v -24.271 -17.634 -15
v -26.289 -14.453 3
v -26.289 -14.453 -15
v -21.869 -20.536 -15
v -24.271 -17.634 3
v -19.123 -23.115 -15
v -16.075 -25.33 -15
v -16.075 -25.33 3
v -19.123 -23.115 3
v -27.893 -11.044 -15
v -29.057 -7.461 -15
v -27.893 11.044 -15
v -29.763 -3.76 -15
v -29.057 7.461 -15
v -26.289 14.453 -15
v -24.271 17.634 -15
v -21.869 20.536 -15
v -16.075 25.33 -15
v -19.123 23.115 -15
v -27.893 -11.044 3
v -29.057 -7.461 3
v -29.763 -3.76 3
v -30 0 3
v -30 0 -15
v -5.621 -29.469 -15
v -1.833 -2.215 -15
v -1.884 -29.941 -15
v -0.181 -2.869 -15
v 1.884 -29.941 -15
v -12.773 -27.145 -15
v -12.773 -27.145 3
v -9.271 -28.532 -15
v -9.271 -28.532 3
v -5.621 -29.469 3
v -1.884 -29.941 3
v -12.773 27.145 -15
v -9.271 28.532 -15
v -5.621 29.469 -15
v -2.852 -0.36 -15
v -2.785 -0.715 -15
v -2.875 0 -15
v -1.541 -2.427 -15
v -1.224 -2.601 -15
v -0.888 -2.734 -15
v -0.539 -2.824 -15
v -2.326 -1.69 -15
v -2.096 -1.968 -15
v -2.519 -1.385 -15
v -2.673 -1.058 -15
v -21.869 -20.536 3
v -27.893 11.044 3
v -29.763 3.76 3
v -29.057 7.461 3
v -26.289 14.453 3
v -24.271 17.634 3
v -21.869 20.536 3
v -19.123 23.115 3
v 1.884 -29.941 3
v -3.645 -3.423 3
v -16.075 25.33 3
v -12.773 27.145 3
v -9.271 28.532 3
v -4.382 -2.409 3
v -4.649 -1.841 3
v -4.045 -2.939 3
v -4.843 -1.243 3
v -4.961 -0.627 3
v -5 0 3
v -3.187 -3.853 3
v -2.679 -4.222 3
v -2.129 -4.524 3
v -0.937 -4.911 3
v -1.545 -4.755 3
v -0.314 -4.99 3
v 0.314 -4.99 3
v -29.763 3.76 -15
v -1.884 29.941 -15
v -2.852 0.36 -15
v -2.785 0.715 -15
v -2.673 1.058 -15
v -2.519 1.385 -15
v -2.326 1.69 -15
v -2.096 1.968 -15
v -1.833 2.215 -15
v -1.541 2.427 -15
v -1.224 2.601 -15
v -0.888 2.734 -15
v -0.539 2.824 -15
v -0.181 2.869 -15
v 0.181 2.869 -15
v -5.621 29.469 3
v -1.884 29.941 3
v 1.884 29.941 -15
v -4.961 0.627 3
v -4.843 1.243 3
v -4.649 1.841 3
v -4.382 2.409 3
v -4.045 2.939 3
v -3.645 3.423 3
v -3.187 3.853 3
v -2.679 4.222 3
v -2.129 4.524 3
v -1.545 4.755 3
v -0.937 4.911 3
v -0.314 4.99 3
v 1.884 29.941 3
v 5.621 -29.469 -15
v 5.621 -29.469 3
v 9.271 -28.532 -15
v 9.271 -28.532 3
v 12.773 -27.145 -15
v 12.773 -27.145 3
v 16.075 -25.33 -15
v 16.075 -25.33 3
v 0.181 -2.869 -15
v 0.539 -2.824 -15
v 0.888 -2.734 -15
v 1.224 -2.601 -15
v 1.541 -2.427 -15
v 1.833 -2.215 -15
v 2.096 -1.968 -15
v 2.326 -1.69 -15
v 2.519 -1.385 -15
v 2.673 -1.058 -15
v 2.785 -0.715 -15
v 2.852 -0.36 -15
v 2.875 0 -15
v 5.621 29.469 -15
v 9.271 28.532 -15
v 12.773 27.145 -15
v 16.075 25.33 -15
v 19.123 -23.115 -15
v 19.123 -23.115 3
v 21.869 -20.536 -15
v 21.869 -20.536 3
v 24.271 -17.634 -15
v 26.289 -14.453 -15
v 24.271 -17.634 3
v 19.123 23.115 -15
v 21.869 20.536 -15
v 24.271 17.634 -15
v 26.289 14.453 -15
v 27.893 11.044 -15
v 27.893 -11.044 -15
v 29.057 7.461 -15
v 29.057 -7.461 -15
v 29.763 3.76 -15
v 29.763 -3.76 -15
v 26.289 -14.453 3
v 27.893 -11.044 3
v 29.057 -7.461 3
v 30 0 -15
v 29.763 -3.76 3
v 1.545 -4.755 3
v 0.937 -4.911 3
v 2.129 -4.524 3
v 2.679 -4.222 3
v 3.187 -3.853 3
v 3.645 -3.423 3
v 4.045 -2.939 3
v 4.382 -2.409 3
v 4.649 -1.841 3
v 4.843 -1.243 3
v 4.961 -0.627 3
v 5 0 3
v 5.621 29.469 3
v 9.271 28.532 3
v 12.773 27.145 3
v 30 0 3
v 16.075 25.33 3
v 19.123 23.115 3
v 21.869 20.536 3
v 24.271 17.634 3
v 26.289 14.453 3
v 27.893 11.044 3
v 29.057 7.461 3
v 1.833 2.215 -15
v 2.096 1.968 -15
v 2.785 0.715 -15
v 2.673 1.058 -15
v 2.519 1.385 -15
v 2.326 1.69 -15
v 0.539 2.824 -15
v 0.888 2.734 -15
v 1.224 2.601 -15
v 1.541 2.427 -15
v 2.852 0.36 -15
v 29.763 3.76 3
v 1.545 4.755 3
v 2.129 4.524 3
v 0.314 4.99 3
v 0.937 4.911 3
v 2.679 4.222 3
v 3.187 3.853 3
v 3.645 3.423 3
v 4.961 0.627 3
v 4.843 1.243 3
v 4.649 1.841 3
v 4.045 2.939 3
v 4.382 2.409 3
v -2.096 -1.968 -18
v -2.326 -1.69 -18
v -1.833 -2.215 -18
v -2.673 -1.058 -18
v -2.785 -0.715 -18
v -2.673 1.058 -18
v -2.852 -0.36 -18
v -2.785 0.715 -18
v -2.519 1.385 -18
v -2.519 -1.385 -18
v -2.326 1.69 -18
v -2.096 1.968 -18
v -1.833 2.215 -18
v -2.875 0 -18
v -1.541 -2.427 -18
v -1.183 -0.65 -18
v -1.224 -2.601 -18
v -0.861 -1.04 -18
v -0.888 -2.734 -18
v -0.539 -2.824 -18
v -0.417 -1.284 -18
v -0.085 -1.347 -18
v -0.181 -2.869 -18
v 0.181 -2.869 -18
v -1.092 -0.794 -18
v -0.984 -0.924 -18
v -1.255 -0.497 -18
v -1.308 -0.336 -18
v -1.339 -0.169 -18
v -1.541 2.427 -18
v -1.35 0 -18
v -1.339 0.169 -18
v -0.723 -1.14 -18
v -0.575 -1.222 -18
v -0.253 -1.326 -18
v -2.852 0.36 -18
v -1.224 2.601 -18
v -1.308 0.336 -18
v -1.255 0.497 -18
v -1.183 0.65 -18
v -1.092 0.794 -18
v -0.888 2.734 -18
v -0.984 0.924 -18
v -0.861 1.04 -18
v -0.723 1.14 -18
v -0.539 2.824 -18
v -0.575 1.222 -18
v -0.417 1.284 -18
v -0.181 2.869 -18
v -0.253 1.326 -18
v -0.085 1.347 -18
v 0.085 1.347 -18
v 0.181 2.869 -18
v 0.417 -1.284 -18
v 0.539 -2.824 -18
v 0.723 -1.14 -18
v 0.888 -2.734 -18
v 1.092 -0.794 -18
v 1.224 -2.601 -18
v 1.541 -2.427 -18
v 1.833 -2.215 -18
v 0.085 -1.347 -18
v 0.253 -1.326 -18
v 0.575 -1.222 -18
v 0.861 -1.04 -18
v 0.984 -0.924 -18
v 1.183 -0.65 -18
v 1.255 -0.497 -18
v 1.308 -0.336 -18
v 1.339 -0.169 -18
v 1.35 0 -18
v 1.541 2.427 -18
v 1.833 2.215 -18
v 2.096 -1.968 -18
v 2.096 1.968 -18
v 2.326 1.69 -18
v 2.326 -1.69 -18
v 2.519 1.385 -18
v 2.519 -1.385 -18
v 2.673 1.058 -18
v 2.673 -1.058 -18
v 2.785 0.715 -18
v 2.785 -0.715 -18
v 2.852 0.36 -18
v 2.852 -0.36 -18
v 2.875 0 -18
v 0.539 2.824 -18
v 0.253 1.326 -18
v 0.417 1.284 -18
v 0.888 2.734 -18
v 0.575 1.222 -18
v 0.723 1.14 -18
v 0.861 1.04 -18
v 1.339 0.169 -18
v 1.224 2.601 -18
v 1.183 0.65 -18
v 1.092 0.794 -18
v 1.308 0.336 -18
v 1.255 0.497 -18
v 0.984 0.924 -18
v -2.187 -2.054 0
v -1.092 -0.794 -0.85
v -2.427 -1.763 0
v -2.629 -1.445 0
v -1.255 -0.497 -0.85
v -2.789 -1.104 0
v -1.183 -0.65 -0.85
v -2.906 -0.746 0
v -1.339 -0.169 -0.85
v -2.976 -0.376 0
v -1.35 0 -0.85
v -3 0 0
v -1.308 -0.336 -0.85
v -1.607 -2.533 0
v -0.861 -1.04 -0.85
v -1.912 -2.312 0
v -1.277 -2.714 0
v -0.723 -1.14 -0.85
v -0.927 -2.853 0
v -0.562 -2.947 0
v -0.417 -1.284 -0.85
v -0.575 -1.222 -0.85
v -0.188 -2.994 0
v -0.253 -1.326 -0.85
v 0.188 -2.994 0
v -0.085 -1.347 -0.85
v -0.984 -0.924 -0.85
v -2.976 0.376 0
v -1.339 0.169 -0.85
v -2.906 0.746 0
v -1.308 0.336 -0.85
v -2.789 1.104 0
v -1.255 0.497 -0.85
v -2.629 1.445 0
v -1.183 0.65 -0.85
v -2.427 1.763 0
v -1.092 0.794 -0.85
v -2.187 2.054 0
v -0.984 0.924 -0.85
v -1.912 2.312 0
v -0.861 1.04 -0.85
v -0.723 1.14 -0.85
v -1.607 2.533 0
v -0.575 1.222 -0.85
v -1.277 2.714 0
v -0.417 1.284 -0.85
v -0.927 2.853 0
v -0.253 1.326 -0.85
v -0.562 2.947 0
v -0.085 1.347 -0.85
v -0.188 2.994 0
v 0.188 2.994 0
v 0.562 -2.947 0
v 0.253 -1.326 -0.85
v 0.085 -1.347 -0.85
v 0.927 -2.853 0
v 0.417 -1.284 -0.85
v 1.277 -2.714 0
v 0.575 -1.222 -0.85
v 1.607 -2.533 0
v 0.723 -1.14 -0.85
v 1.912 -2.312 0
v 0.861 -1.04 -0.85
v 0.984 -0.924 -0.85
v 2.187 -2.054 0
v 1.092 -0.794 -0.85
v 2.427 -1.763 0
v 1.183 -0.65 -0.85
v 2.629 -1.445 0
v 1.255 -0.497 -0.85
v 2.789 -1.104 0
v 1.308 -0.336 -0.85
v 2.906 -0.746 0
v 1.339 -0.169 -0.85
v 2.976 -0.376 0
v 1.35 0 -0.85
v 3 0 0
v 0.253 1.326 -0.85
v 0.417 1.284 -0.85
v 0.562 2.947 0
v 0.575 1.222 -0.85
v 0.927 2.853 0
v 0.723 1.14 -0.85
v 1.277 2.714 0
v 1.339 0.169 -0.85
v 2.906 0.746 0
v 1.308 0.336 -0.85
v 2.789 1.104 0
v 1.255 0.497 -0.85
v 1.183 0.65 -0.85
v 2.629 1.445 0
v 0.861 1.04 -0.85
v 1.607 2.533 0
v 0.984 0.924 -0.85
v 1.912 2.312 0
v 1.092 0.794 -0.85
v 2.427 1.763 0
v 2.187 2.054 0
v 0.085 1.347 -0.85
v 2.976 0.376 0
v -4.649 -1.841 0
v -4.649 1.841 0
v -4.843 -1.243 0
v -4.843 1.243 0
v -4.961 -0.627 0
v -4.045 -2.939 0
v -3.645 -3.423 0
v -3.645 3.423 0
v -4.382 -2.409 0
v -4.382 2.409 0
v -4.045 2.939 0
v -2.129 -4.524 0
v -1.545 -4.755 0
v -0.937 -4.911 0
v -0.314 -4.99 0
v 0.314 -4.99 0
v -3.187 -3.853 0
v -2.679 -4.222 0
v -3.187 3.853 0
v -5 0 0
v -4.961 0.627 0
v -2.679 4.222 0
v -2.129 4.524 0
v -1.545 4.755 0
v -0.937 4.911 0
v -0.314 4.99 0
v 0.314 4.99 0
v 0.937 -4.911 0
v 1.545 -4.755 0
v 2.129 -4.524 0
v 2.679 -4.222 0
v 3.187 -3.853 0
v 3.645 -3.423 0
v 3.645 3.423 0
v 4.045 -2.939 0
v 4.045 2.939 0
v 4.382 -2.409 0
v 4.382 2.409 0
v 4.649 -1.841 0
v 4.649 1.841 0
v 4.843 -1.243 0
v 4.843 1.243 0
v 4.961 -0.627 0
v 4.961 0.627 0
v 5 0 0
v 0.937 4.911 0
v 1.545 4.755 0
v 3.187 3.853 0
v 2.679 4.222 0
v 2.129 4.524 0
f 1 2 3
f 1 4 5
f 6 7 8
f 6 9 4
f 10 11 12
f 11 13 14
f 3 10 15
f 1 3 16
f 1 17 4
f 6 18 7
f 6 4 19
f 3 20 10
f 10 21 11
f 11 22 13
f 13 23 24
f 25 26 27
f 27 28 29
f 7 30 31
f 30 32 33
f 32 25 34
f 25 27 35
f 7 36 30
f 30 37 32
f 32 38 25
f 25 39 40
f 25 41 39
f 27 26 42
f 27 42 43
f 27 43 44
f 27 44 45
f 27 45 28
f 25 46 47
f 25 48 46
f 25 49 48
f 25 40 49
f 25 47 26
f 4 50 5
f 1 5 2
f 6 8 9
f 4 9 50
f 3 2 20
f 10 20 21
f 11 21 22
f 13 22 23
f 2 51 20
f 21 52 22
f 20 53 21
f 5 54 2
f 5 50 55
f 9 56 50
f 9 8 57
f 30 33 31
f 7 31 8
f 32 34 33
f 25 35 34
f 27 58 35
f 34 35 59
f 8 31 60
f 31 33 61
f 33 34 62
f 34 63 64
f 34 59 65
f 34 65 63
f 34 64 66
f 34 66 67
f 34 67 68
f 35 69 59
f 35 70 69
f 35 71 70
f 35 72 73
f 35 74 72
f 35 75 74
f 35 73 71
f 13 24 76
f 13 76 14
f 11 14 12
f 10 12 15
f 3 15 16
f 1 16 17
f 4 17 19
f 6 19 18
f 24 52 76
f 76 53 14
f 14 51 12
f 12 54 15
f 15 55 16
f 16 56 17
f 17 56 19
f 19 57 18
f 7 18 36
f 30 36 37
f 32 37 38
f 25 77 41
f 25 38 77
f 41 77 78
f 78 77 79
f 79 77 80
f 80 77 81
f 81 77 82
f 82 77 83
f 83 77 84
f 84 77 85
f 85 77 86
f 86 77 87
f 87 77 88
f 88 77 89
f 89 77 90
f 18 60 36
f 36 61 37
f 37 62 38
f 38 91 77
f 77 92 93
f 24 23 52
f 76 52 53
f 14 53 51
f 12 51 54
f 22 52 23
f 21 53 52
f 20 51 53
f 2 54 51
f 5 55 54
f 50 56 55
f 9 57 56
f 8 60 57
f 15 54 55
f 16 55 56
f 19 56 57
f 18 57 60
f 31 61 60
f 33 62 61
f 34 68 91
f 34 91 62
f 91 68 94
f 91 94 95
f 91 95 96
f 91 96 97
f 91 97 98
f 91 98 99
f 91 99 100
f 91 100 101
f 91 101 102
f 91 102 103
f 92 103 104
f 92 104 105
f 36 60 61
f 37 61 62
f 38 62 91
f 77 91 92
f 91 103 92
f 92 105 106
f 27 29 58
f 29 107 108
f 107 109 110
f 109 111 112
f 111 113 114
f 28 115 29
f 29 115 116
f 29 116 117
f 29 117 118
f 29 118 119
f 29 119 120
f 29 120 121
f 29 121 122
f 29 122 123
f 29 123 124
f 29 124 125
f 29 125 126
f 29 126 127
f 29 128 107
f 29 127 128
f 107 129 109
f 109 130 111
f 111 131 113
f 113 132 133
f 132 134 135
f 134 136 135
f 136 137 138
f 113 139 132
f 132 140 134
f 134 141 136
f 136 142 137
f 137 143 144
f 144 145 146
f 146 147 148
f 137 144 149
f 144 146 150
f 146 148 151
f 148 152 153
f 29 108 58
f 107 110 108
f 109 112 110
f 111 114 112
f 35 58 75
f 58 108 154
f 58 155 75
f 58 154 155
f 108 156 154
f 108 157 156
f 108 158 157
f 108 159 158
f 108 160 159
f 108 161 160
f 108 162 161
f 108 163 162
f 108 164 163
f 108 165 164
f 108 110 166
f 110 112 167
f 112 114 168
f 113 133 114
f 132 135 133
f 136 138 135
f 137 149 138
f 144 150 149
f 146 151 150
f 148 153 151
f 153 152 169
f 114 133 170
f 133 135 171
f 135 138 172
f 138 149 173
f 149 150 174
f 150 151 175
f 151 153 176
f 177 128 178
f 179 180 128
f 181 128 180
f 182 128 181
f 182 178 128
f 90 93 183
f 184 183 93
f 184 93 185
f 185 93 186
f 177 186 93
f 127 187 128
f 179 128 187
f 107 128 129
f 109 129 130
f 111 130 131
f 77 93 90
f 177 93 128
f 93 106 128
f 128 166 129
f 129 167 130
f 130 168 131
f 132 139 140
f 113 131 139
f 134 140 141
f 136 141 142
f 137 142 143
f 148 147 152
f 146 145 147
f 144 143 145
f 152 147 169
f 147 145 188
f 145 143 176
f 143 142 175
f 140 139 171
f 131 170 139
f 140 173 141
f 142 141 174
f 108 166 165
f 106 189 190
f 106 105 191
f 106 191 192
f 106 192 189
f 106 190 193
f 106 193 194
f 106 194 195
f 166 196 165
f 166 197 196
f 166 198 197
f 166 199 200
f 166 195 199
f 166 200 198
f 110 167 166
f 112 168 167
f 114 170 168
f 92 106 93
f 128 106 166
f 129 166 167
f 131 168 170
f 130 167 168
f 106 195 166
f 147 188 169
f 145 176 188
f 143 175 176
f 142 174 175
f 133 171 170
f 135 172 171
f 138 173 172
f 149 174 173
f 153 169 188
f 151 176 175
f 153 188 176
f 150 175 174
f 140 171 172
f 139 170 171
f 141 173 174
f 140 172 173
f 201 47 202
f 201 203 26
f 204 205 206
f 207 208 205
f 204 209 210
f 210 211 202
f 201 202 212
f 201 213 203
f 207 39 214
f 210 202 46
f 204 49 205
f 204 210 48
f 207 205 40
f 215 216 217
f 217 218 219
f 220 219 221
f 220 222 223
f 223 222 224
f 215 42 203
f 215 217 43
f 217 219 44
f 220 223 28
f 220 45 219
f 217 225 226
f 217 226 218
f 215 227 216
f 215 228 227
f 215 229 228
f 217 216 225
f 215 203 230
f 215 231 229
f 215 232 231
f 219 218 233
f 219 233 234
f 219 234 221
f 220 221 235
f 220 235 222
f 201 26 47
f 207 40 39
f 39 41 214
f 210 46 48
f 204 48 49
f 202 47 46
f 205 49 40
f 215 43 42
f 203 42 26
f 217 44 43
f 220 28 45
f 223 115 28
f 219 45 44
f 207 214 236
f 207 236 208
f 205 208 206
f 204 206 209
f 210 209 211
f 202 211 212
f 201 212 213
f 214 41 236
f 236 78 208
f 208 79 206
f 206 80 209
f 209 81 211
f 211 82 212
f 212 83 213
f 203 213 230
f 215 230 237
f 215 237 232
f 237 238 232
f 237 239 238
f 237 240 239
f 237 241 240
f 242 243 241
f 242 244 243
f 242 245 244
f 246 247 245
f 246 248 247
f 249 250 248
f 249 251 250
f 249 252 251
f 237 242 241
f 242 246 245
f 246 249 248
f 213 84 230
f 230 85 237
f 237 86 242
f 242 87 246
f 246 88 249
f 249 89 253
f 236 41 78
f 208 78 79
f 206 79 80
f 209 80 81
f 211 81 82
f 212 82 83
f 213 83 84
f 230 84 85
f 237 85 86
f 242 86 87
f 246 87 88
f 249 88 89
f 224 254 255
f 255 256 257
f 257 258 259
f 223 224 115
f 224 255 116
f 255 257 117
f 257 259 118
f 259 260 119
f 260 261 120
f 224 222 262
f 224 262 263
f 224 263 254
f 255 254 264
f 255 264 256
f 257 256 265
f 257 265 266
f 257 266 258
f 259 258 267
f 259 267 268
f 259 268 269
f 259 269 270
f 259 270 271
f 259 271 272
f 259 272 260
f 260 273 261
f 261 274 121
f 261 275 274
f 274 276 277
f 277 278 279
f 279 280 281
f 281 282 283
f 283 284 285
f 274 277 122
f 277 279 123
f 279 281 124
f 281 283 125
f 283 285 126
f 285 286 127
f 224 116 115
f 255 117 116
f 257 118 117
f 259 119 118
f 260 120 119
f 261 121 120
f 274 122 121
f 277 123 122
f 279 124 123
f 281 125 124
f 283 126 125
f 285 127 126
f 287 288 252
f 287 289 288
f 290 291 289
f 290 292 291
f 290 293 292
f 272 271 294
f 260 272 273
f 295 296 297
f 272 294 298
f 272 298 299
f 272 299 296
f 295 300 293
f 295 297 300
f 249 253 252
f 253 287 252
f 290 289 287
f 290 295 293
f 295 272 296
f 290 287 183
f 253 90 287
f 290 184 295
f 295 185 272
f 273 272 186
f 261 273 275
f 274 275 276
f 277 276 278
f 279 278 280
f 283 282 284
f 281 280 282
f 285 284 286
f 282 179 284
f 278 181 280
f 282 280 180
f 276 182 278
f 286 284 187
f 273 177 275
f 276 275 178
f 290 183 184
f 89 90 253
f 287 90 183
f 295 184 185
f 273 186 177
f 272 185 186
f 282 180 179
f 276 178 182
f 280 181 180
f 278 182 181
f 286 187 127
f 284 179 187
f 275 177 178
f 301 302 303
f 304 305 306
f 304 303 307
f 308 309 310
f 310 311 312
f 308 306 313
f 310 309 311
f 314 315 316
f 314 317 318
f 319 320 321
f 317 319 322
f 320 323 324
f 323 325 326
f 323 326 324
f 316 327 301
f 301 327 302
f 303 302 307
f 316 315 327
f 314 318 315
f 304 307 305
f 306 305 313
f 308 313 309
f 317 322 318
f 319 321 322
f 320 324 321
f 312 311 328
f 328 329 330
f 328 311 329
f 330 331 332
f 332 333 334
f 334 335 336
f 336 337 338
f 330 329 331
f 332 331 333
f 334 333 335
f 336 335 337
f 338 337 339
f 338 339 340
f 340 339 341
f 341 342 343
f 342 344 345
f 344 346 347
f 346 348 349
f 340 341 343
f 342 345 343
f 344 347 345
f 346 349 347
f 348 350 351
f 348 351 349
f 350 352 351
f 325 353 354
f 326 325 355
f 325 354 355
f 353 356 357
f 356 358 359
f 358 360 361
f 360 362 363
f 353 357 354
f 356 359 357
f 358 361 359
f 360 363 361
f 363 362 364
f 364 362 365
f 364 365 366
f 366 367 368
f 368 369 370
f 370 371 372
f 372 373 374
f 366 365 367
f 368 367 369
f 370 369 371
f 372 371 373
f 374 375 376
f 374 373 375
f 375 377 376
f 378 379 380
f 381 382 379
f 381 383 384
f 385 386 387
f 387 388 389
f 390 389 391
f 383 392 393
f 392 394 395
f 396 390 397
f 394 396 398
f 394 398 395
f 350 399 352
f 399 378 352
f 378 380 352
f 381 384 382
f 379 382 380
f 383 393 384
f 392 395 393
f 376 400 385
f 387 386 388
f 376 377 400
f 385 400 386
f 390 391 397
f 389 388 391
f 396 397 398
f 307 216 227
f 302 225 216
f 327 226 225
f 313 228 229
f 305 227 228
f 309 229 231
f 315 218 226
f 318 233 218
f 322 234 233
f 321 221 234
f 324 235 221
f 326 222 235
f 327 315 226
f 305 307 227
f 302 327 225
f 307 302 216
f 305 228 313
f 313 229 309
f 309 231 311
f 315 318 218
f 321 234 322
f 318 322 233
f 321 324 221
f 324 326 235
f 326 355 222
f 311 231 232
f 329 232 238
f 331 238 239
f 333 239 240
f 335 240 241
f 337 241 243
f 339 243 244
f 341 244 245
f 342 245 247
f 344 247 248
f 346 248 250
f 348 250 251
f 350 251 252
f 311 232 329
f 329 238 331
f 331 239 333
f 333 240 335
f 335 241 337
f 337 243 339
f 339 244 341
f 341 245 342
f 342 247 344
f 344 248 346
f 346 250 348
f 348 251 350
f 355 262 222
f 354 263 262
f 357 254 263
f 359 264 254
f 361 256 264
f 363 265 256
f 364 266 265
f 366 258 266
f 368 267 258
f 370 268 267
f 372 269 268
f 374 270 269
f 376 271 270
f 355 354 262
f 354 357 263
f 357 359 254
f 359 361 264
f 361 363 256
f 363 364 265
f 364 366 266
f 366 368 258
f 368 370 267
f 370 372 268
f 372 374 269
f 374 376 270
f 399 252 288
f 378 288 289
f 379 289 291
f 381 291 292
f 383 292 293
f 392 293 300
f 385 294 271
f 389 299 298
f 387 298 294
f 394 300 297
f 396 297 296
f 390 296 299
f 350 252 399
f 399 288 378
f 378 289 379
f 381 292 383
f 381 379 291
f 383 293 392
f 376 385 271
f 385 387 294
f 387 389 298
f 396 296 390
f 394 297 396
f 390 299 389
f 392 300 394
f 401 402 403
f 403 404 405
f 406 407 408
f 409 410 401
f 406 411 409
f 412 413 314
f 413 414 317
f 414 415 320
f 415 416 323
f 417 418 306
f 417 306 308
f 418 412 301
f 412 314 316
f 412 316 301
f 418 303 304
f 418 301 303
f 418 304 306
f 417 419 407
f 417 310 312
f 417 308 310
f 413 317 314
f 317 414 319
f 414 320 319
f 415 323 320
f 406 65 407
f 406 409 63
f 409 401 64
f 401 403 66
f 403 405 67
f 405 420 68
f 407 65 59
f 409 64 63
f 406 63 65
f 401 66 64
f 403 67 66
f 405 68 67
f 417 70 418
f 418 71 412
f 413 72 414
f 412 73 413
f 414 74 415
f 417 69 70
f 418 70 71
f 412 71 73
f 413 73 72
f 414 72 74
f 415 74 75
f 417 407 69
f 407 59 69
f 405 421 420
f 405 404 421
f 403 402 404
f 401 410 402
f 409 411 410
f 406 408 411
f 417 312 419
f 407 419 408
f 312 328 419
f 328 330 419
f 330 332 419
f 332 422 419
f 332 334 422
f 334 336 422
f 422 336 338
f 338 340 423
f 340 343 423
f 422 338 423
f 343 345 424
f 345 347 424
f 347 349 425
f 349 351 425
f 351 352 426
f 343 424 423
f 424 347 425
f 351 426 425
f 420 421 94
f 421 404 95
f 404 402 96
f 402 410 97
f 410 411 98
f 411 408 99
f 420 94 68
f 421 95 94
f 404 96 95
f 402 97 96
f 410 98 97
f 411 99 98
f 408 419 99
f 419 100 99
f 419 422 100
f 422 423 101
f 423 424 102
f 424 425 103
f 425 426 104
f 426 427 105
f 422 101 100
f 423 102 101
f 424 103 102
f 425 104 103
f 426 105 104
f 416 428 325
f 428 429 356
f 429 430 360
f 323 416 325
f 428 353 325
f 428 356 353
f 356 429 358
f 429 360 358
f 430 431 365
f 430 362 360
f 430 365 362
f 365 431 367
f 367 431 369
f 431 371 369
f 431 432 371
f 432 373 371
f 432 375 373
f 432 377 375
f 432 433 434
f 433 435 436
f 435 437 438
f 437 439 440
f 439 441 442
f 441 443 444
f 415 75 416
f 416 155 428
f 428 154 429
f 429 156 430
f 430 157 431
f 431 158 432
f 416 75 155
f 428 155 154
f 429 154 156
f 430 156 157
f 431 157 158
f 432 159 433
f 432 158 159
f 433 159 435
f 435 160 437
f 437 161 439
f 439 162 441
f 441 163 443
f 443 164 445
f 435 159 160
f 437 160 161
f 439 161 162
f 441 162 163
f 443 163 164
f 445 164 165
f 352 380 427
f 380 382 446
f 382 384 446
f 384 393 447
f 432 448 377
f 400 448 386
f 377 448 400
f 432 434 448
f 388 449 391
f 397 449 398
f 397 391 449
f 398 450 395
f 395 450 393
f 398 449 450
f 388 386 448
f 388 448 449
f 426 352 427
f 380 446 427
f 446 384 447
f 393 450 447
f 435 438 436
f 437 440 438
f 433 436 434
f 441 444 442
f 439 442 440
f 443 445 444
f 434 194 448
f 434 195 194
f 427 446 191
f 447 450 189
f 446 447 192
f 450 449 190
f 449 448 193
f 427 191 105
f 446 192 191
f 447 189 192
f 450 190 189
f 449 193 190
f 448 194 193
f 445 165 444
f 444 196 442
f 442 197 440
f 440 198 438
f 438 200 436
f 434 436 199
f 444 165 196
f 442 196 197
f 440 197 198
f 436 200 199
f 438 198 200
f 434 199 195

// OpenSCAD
$fn = 50;


difference() {
	union() {
		translate(v = [0, 0, -15.0000000000]) {
			cylinder(h = 18, r = 30.0000000000);
		}
		#translate(v = [0, 0, -18.0000000000]) {
			cylinder(h = 18, r = 2.8750000000);
		}
	}
	union() {
		translate(v = [0, 0, 0]) {
			rotate(a = [0, 0, 0]) {
				difference() {
					union() {
						translate(v = [0, 0, -18.0000000000]) {
							cylinder(h = 18, r = 1.0000000000);
						}
						translate(v = [0, 0, -0.8500000000]) {
							cylinder(h = 0.8500000000, r1 = 1.3500000000, r2 = 3.0000000000);
						}
						translate(v = [0, 0, -18.0000000000]) {
							cylinder(h = 18, r = 1.3500000000);
						}
						translate(v = [0, 0, -18.0000000000]) {
							cylinder(h = 18, r = 1.0000000000);
						}
					}
					union();
				}
			}
		}
		#cylinder(h = 3, r = 5.0000000000);
	}
}
